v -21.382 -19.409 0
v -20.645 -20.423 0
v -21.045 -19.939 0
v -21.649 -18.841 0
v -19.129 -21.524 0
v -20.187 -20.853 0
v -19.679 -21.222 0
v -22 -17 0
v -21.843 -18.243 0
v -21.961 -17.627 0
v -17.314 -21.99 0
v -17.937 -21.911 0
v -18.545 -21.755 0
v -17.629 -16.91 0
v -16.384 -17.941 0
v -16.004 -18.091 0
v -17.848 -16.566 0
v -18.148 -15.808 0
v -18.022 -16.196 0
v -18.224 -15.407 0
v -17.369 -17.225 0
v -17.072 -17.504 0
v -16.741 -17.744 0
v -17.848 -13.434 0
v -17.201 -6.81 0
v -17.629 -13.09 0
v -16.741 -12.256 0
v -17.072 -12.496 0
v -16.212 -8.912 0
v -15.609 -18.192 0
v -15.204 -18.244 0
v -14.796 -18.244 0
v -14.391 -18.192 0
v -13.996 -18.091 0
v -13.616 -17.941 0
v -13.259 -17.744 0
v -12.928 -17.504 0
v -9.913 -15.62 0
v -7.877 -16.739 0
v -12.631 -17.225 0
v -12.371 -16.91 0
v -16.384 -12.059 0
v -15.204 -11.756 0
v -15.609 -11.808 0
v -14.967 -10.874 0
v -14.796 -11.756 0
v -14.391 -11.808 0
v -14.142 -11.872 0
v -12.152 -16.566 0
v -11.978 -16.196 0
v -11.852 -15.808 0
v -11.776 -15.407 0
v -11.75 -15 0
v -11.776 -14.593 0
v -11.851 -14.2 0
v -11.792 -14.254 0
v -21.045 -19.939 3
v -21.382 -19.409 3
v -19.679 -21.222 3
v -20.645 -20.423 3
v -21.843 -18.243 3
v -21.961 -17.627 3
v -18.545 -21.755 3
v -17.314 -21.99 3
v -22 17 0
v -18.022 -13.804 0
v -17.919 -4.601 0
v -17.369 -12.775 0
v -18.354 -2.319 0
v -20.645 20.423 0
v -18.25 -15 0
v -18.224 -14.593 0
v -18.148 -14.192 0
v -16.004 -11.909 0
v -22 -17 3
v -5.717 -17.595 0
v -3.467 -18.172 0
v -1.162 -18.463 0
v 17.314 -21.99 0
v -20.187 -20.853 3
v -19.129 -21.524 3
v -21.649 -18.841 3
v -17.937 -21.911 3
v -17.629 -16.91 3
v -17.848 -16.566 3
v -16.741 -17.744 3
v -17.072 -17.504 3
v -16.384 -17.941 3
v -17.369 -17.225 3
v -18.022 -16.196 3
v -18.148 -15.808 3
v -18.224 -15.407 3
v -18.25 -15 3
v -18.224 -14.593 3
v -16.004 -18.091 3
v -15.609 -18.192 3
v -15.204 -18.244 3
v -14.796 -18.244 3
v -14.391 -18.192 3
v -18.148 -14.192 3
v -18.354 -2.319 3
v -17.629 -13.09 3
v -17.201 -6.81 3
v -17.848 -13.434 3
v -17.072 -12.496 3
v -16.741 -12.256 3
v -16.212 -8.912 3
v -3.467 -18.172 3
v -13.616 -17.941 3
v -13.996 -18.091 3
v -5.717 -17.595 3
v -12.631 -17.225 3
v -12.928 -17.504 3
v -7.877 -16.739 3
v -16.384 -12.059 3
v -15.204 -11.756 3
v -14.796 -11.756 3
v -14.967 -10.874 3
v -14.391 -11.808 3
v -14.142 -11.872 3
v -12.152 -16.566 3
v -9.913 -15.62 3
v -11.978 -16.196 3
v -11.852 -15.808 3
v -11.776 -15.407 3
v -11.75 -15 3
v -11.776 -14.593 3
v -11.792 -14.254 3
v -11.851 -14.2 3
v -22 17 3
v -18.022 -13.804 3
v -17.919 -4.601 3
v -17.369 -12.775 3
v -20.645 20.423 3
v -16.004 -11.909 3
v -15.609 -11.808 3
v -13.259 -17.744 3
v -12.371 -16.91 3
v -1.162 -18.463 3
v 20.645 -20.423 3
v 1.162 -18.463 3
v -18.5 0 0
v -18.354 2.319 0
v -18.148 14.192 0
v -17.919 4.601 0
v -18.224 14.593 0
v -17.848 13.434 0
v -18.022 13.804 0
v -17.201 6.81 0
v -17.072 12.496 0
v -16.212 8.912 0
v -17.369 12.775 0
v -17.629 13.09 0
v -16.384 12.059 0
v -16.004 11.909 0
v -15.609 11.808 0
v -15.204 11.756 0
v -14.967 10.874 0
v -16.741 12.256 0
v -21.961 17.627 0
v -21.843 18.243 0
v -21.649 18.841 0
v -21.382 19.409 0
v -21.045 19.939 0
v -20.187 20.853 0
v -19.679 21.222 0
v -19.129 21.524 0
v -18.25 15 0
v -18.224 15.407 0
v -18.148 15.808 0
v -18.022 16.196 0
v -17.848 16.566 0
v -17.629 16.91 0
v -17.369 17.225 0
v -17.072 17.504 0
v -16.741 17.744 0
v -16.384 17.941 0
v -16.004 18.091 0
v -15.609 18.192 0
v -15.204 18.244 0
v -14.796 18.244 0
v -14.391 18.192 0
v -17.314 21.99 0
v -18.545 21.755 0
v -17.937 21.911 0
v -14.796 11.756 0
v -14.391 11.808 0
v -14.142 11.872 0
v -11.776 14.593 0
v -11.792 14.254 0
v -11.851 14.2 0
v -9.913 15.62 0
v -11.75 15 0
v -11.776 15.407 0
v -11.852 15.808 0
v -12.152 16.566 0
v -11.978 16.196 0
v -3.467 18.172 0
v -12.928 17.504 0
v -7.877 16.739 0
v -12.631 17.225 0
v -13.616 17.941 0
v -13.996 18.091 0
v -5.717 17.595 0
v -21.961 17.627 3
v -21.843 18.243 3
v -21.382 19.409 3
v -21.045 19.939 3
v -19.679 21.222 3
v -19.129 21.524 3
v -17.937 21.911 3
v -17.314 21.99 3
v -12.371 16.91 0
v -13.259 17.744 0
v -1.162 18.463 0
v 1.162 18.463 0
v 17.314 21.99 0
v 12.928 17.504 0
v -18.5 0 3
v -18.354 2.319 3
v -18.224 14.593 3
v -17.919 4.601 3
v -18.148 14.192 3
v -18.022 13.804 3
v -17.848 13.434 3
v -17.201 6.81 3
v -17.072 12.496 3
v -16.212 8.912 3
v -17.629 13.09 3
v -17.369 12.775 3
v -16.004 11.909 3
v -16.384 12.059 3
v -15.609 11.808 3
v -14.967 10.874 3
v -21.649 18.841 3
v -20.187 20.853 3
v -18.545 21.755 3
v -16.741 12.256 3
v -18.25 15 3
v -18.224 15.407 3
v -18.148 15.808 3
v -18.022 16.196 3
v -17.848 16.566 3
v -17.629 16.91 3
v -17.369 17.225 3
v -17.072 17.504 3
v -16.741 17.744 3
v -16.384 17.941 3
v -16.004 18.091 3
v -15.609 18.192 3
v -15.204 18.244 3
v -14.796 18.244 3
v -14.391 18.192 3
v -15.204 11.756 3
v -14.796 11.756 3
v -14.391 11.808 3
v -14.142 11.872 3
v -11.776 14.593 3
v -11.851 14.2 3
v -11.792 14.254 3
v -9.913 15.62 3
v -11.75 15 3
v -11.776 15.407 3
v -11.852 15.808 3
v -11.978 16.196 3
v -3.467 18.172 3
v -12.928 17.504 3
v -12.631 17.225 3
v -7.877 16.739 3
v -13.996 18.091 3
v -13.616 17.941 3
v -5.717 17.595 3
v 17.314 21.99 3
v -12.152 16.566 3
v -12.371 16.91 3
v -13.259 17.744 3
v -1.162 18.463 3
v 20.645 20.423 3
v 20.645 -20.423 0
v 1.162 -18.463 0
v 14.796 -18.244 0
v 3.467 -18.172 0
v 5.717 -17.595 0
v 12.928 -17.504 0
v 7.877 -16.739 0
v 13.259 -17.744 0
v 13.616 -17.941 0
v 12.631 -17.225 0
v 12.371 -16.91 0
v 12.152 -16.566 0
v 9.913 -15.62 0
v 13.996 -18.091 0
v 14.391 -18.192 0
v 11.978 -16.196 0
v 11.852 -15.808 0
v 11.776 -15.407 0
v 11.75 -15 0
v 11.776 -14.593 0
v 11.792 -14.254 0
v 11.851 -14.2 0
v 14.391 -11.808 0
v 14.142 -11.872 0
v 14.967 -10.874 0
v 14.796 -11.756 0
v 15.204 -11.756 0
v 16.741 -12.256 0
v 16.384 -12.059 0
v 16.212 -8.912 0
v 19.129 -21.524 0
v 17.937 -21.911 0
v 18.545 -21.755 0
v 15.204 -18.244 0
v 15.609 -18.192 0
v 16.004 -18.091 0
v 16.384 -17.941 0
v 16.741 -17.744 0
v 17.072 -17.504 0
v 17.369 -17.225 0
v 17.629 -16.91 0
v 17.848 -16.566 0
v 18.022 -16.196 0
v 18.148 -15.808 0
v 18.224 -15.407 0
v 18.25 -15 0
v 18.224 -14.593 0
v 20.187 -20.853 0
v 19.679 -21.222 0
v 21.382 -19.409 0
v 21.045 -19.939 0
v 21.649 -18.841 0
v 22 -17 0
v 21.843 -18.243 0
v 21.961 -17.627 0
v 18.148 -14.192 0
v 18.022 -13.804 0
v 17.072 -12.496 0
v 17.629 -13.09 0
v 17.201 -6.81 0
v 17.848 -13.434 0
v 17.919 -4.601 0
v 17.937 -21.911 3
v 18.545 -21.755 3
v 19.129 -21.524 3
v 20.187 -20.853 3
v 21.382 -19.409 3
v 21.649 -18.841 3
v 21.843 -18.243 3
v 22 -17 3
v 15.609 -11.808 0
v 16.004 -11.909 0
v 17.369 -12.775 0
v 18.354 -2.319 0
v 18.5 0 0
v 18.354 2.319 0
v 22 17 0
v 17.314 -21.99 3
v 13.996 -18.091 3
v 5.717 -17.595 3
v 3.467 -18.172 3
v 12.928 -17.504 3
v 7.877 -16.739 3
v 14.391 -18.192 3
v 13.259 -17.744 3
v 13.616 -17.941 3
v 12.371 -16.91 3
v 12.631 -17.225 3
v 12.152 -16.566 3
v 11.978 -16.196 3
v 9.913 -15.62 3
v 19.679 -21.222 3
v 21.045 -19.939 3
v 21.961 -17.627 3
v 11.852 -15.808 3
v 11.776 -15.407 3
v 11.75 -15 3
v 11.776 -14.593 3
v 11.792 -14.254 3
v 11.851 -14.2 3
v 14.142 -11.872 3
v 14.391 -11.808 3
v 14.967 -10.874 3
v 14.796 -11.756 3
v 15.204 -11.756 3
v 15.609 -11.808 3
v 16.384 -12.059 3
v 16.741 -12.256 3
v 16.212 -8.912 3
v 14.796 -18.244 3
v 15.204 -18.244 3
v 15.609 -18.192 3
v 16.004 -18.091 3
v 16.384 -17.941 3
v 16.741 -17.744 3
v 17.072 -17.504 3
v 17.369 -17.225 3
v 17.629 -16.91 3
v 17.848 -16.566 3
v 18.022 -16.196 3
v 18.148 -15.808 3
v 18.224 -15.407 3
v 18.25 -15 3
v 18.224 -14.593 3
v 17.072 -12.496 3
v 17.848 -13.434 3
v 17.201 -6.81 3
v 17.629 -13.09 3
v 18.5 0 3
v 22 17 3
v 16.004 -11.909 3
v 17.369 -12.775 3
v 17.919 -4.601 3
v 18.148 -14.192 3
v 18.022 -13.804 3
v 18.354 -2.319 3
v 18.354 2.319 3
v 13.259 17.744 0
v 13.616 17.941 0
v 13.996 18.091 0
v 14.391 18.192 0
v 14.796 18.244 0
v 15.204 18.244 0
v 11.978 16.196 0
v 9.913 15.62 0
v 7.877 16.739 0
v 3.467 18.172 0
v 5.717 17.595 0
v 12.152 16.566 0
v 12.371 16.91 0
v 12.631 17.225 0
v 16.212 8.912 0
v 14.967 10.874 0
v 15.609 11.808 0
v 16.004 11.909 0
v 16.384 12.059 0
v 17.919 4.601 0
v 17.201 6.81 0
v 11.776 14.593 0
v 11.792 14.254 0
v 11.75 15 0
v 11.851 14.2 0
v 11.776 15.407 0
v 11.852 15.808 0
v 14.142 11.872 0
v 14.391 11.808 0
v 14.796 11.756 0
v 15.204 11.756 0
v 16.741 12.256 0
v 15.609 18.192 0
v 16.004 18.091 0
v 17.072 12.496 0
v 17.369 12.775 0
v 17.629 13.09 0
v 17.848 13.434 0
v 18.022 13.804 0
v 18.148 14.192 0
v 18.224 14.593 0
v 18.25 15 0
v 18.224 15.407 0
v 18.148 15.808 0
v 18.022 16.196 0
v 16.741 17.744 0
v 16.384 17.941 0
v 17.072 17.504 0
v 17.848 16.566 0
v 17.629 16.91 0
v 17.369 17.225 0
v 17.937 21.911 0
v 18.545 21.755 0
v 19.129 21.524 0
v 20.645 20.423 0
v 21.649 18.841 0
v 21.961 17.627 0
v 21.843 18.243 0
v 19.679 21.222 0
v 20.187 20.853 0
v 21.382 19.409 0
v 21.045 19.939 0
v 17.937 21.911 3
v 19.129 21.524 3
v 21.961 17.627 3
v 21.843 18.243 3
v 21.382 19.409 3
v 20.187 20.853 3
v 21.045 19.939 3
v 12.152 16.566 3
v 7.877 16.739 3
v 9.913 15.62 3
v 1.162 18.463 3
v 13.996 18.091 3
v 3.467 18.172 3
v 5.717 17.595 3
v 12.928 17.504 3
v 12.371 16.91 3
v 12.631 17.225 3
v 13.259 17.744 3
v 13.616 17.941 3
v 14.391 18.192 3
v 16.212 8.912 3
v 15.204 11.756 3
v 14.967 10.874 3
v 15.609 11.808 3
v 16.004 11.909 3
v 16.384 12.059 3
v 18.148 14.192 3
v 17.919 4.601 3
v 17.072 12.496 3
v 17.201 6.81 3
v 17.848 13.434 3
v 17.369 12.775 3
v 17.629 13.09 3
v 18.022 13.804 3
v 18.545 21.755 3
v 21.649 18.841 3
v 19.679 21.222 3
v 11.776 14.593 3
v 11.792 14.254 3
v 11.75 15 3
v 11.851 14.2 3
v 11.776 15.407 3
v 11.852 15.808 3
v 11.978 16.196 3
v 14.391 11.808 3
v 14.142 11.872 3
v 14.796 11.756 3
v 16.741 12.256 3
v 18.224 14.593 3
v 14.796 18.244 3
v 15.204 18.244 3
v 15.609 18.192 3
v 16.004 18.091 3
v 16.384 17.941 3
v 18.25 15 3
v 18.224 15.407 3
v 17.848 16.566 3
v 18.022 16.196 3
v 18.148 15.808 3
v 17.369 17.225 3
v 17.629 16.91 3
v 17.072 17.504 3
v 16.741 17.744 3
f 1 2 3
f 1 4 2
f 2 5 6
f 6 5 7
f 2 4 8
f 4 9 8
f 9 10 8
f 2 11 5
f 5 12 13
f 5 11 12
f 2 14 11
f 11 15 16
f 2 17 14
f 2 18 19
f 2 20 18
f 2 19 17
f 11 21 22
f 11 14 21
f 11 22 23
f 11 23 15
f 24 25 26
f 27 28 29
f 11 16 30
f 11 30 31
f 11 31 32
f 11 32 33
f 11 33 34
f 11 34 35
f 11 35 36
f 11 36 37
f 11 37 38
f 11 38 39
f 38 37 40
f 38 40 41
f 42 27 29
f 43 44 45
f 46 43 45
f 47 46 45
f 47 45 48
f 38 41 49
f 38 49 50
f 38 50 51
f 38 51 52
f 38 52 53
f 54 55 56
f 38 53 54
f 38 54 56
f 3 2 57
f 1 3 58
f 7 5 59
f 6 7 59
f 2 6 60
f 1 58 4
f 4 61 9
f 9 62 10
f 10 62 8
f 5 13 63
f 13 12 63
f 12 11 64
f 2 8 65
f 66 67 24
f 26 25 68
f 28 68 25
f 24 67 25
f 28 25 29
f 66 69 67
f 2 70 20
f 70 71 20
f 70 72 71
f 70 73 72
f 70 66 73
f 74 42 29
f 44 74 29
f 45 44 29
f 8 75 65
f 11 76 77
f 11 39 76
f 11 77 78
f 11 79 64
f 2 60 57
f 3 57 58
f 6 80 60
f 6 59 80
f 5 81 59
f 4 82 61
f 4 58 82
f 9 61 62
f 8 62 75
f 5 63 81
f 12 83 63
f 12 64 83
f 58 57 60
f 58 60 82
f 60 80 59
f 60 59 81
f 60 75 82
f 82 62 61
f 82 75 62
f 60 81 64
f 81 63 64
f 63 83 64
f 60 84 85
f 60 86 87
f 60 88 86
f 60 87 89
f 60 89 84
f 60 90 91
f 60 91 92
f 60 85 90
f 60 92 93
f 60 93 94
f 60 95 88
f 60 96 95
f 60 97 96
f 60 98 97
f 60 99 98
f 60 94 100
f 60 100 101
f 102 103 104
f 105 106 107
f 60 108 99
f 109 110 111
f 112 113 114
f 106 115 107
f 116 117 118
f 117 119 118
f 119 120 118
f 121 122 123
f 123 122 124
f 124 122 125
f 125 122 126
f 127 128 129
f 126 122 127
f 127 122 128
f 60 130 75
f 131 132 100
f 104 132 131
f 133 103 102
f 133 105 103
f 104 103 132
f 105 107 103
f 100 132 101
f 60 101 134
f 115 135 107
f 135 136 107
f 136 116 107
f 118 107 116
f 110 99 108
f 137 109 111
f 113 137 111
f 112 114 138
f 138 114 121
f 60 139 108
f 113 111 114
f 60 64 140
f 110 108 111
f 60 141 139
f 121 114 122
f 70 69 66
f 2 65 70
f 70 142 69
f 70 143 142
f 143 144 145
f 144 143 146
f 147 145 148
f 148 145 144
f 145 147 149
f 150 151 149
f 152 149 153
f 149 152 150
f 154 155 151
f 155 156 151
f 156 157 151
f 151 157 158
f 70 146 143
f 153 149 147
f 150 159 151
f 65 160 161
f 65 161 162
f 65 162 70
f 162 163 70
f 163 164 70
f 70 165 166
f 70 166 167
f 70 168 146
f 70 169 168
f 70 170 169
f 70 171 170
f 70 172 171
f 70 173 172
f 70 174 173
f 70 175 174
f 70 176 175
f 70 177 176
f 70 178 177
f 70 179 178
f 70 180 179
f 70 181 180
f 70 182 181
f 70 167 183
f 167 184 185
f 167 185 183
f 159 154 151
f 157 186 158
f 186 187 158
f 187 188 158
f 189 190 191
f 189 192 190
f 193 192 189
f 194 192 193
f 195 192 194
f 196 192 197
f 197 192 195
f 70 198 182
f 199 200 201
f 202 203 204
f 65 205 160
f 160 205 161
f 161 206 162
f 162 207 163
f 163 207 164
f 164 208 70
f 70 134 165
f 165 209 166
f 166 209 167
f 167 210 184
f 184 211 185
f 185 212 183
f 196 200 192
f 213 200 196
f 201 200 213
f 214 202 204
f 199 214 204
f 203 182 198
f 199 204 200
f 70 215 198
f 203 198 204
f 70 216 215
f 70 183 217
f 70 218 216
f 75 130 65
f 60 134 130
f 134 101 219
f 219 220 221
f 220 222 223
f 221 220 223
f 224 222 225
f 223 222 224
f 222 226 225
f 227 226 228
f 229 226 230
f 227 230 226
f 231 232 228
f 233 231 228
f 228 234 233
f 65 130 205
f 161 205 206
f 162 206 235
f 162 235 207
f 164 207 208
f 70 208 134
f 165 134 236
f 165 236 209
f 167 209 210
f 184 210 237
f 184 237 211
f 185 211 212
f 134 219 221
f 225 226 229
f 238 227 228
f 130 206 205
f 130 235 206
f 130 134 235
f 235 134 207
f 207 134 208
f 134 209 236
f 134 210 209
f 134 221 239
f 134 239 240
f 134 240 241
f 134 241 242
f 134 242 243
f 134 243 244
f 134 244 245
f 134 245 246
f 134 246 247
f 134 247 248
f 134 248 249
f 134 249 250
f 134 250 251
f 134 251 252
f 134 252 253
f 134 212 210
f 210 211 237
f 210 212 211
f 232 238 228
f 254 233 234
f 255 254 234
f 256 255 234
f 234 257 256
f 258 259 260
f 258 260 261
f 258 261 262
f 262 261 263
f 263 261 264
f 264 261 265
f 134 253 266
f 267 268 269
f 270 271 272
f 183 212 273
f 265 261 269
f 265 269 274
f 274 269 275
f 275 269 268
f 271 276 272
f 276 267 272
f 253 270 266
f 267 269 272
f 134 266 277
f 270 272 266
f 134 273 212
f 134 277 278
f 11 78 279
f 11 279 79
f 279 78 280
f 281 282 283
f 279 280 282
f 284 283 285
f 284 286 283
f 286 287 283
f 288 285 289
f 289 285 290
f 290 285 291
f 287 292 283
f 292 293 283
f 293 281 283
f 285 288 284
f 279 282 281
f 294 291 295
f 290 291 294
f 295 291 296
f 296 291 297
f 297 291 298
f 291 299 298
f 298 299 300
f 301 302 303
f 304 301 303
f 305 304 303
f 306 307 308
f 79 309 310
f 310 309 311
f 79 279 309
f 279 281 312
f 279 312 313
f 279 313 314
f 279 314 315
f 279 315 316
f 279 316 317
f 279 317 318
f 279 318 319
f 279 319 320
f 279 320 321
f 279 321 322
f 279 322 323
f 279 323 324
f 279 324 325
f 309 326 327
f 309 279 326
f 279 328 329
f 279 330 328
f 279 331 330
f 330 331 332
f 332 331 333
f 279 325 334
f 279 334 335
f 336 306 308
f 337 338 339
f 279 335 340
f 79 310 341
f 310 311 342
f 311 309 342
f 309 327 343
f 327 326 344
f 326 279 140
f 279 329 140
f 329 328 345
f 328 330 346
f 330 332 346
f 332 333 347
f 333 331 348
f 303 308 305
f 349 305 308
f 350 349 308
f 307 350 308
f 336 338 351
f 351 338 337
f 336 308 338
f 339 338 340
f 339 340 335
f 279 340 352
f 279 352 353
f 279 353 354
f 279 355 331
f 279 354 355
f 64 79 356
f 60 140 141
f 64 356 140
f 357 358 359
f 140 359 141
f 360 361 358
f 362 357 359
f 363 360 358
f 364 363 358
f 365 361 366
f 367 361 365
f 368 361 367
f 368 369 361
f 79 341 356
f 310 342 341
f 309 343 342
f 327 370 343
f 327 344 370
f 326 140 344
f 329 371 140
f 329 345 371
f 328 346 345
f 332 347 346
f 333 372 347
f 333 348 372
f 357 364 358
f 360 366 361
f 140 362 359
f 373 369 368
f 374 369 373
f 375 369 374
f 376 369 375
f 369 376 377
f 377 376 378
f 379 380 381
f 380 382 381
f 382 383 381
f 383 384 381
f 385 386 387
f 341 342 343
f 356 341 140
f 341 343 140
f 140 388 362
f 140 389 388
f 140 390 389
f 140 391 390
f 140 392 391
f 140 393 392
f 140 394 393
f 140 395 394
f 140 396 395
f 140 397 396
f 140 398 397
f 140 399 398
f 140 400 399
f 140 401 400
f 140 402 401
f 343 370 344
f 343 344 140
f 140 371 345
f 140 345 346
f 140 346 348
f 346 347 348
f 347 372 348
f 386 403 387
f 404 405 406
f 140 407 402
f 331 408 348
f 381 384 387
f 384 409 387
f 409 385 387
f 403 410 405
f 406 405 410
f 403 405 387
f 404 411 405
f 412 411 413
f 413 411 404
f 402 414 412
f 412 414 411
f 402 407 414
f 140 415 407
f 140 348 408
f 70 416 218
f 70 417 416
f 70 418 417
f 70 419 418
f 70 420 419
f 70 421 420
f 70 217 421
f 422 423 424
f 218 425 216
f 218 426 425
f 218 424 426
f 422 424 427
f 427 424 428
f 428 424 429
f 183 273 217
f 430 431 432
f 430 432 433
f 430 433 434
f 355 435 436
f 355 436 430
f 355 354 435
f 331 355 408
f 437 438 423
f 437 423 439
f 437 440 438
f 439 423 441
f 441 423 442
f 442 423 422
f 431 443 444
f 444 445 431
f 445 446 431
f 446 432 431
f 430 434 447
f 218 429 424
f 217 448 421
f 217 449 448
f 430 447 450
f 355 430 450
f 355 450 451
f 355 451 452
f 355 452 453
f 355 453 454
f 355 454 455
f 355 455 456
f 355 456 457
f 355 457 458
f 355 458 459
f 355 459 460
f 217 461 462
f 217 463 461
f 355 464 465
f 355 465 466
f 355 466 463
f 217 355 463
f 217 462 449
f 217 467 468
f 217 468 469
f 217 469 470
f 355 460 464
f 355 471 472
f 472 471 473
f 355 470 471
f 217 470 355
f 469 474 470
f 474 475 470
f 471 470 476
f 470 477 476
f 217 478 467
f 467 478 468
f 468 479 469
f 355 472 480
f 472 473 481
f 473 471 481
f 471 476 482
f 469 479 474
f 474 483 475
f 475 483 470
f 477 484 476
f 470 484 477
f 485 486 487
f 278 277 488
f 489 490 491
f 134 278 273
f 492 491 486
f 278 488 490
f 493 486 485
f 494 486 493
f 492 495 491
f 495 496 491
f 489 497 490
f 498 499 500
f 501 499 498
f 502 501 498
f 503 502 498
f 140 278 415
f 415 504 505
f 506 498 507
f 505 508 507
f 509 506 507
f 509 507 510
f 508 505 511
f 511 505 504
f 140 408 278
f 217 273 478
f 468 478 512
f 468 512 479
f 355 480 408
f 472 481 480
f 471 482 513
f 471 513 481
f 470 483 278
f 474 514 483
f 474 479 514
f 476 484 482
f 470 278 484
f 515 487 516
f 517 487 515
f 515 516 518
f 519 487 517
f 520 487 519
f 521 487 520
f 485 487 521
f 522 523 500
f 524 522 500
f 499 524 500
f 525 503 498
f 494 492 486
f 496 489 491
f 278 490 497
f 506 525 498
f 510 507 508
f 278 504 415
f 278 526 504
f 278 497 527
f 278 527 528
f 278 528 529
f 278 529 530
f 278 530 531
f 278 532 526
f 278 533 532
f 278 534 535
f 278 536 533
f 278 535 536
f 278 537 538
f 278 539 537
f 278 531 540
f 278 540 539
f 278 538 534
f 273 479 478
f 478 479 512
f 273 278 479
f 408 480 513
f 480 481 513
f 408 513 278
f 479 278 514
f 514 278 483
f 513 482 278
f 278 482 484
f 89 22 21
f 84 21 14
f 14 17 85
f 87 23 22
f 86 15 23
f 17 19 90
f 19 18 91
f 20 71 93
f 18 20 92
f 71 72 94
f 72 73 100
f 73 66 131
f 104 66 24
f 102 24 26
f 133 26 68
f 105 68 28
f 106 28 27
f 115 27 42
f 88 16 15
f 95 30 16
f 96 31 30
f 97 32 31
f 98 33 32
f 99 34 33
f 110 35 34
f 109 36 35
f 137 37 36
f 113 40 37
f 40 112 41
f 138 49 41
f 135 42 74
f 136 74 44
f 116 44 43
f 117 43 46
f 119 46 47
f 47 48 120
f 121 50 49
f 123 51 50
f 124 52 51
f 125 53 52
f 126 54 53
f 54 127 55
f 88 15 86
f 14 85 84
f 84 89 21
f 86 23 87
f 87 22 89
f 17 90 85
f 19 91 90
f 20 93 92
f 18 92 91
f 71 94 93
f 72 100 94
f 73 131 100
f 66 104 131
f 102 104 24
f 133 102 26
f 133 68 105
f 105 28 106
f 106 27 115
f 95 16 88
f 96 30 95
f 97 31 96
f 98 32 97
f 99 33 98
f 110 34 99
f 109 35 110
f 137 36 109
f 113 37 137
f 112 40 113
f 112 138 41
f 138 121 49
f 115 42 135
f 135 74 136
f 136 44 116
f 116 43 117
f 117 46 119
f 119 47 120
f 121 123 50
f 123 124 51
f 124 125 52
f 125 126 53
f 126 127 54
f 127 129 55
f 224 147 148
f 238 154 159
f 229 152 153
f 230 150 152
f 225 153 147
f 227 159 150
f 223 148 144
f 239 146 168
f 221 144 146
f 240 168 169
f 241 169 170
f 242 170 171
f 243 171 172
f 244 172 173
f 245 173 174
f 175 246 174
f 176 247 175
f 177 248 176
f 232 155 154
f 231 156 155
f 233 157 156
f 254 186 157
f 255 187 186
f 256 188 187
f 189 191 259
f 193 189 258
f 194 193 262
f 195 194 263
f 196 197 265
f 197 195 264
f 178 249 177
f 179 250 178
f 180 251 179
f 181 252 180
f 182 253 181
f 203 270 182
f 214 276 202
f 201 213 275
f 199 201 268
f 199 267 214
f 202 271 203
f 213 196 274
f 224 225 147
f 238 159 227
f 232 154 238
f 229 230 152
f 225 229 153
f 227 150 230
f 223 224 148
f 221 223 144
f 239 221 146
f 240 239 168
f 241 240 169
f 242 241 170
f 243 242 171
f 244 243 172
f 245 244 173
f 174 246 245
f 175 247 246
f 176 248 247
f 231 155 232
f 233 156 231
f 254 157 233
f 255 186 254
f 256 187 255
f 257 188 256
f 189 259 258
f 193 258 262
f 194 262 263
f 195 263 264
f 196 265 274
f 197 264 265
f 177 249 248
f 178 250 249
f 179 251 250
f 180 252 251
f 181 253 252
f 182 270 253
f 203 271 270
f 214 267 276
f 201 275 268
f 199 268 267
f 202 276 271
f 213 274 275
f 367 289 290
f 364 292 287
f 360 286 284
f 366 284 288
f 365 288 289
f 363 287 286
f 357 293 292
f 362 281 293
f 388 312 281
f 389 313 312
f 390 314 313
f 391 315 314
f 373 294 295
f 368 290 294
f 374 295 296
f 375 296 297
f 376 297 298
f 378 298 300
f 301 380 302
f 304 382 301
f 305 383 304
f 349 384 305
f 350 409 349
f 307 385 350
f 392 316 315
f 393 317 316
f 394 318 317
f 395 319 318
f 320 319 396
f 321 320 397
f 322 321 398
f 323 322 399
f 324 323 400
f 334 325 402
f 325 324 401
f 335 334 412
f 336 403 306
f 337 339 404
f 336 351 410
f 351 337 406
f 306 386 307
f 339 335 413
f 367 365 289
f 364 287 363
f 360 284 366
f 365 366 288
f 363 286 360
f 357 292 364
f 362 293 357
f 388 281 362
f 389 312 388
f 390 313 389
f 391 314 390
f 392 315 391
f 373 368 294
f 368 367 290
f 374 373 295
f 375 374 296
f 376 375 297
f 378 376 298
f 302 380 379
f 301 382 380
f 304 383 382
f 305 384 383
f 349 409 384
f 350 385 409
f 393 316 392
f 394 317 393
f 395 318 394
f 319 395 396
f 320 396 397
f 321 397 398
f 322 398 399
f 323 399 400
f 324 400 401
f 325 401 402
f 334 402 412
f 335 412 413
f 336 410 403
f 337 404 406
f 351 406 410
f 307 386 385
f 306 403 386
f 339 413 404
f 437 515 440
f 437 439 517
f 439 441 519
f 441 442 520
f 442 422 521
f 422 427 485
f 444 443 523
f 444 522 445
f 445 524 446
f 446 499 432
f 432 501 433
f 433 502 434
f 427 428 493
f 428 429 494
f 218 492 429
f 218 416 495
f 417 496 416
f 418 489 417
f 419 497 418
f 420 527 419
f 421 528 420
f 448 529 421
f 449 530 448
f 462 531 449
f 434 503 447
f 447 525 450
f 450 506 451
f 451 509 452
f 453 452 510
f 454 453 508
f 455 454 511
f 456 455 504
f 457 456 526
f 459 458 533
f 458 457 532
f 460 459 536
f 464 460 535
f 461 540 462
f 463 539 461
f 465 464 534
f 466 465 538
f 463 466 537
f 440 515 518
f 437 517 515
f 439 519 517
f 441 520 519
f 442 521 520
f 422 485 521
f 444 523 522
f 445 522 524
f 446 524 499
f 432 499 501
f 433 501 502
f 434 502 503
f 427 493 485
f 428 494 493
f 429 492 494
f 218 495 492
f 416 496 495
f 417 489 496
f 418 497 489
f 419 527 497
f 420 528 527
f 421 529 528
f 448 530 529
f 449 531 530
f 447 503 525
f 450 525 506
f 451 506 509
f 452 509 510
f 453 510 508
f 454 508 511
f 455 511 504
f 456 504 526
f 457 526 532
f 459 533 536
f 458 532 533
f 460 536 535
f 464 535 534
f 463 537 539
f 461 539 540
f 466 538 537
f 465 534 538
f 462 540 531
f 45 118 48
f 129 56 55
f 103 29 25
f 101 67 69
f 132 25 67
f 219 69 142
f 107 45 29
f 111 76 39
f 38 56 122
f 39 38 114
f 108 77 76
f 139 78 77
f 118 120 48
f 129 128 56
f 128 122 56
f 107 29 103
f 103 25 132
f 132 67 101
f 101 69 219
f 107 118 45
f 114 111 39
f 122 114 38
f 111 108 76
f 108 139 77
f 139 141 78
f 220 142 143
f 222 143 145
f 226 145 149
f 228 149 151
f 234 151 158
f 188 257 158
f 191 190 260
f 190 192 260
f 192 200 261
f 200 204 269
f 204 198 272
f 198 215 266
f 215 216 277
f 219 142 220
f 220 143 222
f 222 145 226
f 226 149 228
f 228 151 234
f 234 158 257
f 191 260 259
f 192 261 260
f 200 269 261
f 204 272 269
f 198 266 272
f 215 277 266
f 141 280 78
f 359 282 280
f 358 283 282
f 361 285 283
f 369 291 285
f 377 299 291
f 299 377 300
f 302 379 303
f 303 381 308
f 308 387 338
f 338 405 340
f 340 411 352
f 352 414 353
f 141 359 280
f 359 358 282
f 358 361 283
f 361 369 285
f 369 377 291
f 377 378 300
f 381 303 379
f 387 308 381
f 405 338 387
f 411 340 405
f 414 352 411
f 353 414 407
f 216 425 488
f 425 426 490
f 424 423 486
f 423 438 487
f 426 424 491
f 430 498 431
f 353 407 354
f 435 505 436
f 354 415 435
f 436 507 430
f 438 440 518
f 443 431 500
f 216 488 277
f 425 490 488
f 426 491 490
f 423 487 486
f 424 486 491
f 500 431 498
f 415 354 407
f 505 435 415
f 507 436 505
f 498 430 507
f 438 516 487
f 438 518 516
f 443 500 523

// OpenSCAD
$fn = 50;

difference() {
	union() {
		hull() {
			translate(v = [-17.0, 17.0, 0]) {
				cylinder(h = 3, r = 5);
			}
			translate(v = [17.0, 17.0, 0]) {
				cylinder(h = 3, r = 5);
			}
			translate(v = [-17.0, -17.0, 0]) {
				cylinder(h = 3, r = 5);
			}
			translate(v = [17.0, -17.0, 0]) {
				cylinder(h = 3, r = 5);
			}
		}
	}
	union() {
		translate(v = [-15.0, -15.0, -100.0]) {
			cylinder(h = 200, r = 3.25);
		}
		translate(v = [-15.0, 15.0, -100.0]) {
			cylinder(h = 200, r = 3.25);
		}
		translate(v = [15.0, -15.0, -100.0]) {
			cylinder(h = 200, r = 3.25);
		}
		translate(v = [15.0, 15.0, -100.0]) {
			cylinder(h = 200, r = 3.25);
		}
		translate(v = [-15.0, -15.0, -100.0]) {
			cylinder(h = 200, r = 1.8);
		}
		translate(v = [-15.0, 15.0, -100.0]) {
			cylinder(h = 200, r = 1.8);
		}
		translate(v = [15.0, -15.0, -100.0]) {
			cylinder(h = 200, r = 1.8);
		}
		translate(v = [15.0, 15.0, -100.0]) {
			cylinder(h = 200, r = 1.8);
		}
		cylinder(h = 3, r = 18.5);
	}
}
